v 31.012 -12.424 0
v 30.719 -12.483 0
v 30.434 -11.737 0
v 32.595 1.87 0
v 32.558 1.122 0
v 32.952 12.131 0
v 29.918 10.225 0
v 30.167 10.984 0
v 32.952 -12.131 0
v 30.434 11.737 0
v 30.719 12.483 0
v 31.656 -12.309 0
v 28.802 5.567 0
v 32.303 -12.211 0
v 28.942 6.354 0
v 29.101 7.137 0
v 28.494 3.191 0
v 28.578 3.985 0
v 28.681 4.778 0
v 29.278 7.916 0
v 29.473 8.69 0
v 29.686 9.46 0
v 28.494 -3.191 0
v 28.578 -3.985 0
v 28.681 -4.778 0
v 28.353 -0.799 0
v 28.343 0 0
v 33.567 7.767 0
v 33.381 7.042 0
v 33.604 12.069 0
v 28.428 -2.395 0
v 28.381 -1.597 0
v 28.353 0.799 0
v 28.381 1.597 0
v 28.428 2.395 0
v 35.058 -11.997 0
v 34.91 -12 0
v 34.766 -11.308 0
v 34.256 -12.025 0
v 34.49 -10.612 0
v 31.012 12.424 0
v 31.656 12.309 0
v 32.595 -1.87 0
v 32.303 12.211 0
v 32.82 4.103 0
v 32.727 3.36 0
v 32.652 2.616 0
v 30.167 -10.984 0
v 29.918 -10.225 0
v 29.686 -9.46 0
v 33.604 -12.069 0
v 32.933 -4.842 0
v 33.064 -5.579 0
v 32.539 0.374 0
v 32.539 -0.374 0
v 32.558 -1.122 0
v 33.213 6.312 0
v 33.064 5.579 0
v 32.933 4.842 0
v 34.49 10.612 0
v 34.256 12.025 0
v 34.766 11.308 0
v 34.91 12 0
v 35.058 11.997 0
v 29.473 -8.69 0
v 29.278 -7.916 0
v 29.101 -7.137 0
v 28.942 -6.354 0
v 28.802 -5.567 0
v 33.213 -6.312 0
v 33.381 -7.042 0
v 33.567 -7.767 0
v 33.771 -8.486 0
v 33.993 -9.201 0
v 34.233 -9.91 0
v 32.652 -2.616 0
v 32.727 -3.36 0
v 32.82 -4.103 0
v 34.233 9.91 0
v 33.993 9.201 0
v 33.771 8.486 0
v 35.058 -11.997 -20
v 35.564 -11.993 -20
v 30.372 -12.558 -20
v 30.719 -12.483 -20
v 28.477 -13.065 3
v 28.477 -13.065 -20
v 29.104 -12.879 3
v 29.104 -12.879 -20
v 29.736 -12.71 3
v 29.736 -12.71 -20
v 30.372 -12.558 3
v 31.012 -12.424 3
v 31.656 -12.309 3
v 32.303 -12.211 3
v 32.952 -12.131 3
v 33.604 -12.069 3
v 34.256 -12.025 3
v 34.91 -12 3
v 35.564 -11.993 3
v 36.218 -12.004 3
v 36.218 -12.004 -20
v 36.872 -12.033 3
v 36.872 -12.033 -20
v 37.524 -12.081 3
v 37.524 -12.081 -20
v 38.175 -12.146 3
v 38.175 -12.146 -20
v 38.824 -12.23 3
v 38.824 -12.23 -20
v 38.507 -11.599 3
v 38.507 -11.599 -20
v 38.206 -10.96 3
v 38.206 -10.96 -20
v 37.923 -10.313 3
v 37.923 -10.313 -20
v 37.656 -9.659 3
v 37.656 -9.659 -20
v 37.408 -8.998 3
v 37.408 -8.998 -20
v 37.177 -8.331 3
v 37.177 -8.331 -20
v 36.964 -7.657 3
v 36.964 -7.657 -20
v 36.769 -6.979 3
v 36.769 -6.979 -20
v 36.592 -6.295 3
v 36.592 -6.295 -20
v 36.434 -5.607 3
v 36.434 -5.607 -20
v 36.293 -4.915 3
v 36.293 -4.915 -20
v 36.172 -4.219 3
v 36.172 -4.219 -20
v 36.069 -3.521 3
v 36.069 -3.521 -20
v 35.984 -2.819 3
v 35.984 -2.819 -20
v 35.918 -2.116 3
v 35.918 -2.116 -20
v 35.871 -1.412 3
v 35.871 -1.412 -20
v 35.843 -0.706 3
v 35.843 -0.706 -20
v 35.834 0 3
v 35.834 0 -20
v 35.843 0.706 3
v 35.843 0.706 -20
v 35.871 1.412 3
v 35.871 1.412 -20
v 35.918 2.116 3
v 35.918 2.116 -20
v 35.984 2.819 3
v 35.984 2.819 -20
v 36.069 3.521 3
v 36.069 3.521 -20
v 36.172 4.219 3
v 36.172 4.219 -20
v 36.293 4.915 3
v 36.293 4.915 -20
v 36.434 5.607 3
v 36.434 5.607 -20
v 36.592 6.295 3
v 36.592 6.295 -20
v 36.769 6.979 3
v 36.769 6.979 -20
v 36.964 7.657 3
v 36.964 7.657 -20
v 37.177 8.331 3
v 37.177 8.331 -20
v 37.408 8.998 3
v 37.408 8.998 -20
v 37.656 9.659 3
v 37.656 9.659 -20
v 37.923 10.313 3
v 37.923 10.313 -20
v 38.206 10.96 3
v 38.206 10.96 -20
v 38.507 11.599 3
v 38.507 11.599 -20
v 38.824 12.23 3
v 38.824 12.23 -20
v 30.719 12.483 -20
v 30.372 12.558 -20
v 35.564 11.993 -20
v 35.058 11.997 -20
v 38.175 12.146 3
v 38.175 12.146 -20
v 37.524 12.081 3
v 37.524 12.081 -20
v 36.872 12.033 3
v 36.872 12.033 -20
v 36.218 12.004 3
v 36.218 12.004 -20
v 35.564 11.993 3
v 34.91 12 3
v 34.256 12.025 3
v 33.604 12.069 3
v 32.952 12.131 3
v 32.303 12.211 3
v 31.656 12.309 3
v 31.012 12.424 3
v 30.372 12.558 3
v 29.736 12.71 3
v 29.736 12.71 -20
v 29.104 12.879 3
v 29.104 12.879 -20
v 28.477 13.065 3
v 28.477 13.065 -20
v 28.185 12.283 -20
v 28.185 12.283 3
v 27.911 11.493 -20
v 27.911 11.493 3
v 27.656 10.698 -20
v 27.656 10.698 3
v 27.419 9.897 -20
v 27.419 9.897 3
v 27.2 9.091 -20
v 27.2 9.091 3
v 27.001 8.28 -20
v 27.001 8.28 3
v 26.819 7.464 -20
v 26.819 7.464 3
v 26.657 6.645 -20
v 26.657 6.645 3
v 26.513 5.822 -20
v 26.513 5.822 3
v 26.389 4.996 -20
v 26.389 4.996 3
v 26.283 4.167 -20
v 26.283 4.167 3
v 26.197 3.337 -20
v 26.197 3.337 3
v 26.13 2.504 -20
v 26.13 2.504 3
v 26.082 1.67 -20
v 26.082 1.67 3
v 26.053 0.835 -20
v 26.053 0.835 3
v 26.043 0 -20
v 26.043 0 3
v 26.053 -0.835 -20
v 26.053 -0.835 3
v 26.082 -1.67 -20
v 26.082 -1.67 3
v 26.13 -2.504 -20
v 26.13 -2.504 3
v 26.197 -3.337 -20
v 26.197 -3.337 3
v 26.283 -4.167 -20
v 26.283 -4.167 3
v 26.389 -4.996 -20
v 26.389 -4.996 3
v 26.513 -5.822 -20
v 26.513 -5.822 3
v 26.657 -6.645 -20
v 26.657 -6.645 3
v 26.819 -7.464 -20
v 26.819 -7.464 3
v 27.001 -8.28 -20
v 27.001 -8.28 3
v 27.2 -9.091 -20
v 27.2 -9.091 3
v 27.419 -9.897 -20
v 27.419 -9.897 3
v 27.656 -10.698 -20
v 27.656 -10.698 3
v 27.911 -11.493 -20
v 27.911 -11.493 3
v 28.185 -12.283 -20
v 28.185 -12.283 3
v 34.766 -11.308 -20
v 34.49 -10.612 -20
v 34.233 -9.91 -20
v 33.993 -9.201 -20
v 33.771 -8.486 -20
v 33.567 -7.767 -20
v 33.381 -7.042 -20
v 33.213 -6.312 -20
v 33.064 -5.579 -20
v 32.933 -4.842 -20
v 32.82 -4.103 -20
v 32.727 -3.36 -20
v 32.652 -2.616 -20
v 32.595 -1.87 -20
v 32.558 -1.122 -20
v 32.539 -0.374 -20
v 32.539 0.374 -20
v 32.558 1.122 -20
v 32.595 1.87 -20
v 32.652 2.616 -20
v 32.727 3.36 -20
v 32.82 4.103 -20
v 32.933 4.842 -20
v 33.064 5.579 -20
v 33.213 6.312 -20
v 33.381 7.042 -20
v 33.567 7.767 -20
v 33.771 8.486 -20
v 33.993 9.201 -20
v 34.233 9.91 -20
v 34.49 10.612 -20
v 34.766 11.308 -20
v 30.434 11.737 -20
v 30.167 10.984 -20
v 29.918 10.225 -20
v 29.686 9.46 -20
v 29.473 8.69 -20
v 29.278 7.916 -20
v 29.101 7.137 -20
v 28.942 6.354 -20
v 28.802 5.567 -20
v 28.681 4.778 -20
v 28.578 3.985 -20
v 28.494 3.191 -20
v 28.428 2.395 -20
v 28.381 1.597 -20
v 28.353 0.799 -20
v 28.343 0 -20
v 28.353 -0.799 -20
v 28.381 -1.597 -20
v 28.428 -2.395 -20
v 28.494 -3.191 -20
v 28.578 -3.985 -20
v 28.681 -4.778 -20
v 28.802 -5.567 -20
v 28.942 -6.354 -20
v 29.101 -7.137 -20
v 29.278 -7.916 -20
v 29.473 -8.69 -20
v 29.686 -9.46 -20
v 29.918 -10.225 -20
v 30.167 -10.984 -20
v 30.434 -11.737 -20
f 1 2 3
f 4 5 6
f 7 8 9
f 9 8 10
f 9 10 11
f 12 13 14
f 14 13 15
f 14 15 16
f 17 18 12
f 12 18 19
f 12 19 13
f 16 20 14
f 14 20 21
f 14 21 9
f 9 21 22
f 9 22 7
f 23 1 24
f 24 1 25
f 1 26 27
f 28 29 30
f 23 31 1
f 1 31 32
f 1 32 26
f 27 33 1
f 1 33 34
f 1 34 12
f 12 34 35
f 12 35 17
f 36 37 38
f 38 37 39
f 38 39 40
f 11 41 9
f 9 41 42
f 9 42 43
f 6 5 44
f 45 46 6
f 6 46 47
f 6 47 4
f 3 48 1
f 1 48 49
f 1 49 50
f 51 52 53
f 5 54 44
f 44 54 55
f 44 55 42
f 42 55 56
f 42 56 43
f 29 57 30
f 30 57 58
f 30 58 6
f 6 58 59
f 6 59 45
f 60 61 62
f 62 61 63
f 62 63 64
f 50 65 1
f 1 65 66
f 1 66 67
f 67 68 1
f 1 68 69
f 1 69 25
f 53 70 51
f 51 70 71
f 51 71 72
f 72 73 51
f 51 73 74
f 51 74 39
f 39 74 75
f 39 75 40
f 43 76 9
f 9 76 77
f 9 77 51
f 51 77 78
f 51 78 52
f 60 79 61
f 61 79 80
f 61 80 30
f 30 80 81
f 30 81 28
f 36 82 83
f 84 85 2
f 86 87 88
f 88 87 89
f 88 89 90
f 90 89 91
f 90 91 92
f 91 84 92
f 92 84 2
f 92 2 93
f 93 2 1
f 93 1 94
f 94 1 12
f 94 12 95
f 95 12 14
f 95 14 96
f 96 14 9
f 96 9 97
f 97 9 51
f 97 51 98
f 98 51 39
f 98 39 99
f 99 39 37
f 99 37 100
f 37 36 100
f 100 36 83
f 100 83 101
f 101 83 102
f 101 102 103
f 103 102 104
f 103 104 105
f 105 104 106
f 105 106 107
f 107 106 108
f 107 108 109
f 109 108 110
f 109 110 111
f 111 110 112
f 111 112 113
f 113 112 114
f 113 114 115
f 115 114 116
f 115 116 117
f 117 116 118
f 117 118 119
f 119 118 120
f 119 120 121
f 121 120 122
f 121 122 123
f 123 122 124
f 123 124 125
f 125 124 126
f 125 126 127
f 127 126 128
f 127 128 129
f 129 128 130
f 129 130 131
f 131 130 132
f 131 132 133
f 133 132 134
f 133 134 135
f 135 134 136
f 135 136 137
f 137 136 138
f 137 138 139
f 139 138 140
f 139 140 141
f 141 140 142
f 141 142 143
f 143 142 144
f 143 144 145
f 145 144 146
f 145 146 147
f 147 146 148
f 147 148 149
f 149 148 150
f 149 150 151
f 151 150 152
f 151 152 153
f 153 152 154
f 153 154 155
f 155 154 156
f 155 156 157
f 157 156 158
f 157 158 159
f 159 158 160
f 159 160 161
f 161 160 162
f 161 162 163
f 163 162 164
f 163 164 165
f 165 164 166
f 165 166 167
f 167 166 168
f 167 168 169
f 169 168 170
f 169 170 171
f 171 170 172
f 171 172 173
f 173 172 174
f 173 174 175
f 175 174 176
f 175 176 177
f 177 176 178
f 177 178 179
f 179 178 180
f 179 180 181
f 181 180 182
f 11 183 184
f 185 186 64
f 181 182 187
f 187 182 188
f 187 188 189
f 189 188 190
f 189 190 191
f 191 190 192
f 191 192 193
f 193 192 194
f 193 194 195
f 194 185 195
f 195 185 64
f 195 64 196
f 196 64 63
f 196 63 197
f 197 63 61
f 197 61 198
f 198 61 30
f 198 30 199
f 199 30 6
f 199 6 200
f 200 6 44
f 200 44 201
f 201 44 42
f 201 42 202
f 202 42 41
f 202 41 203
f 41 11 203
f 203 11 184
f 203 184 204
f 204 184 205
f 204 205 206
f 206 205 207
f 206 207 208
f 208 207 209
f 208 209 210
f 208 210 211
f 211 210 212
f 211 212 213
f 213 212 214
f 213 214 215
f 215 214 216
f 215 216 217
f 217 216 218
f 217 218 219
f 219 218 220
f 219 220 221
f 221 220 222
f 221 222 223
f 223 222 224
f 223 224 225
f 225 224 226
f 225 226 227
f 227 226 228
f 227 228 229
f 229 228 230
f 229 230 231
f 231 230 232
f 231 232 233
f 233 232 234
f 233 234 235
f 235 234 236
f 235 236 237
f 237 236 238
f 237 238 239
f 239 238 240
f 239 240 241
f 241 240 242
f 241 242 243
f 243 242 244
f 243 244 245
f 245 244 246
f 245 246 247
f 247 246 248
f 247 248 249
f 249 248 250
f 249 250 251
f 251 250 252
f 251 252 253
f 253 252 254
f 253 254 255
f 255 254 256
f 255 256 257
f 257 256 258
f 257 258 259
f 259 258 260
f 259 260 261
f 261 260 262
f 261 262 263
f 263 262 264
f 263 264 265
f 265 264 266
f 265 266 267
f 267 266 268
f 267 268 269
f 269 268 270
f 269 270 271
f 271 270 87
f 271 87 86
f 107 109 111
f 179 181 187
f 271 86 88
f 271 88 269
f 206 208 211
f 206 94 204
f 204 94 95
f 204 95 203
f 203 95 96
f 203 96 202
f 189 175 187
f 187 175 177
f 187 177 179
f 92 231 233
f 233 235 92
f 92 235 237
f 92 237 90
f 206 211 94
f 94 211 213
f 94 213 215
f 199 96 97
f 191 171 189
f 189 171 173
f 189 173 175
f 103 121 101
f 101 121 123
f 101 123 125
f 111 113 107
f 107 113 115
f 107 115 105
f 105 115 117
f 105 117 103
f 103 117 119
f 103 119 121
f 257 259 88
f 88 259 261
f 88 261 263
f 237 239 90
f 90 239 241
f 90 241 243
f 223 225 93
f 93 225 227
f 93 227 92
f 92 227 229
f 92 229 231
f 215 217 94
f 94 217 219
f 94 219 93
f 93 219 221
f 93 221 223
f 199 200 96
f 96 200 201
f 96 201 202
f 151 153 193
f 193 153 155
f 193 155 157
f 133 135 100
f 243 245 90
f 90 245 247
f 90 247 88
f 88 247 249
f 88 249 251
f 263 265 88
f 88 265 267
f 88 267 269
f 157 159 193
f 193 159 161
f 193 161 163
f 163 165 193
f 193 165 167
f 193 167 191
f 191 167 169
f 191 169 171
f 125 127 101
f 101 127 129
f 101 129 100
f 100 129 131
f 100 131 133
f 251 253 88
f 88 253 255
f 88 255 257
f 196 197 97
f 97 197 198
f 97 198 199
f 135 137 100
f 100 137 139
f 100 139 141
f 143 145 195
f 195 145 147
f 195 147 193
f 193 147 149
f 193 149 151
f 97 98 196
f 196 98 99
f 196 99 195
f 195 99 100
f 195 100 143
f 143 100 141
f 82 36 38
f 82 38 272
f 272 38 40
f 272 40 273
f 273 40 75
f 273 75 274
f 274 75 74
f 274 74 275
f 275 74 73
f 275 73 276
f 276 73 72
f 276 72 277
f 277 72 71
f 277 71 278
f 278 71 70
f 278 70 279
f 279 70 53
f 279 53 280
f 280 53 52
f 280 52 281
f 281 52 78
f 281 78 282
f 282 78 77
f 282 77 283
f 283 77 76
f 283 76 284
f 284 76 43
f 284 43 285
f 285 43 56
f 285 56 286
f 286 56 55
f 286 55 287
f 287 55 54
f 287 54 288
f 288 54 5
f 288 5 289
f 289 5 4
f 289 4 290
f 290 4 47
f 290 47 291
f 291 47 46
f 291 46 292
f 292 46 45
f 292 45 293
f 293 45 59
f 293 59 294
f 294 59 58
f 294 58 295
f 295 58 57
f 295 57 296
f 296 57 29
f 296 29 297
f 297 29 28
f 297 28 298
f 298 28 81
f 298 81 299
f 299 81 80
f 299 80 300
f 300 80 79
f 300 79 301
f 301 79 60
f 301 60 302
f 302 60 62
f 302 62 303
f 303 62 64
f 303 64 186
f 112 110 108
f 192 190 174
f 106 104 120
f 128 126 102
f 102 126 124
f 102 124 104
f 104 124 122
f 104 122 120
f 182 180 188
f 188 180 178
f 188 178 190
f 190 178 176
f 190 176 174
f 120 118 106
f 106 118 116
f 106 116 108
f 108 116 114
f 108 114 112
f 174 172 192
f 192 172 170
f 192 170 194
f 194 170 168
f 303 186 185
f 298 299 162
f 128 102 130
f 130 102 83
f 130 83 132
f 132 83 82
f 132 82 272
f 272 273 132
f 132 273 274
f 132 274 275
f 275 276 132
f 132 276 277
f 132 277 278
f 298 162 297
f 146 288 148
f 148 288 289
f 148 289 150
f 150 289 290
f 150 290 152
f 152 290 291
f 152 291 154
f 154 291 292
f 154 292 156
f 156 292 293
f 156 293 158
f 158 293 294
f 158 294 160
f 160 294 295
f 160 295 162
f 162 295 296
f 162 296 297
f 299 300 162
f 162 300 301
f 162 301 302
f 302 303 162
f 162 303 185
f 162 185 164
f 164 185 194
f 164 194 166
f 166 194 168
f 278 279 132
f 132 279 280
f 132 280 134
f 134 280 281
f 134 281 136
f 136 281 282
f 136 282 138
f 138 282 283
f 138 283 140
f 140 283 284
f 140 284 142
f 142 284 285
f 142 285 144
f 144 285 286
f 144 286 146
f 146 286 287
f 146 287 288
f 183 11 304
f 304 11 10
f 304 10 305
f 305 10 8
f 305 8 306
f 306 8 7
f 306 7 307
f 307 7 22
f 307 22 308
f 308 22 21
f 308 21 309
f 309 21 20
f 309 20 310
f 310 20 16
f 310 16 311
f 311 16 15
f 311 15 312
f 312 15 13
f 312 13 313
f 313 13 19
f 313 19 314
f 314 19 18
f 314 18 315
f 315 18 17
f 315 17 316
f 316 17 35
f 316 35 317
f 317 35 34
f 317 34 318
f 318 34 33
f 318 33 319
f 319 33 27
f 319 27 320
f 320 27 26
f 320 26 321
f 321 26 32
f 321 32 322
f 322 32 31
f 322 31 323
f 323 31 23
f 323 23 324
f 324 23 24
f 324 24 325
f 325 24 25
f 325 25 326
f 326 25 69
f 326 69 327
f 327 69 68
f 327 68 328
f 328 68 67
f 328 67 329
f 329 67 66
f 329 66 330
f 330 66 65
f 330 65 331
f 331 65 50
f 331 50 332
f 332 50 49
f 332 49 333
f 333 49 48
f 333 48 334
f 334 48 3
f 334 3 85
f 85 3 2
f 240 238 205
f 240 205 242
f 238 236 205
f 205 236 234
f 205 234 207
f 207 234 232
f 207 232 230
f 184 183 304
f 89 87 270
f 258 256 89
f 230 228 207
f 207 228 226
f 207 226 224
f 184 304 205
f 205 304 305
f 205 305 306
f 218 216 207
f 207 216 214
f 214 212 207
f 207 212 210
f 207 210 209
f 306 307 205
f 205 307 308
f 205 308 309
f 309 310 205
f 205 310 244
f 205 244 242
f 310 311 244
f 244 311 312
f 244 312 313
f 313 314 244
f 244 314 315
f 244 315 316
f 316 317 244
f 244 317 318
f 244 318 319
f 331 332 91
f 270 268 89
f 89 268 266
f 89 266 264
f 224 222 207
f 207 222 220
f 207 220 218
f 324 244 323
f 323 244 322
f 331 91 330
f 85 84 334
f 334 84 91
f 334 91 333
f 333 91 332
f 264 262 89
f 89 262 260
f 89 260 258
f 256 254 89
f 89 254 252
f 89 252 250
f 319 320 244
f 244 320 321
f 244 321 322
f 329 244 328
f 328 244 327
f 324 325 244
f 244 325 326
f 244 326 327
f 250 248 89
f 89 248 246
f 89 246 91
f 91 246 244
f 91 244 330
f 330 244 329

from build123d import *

# Parameters (mm, degrees)
BOSS_EXTRUDE1_DEPTH = 3
BOSS_EXTRUDE2_DEPTH = 20


with BuildPart() as part:
    # Sketch1 → Boss-Extrude1 (new body)
    with BuildSketch(Plane.XY):
        with BuildLine():
            ThreePointArc((28.476711912, -13.065389126), (26.043422294, 0), (28.476711912, 13.065389126))
            ThreePointArc((28.476711912, 13.065389126), (33.603633576, 12.069057908), (38.823996353, 12.229725621))
            ThreePointArc((38.823996353, 12.229725621), (35.833644105, 0), (38.823996353, -12.229725621))
            ThreePointArc((38.823996353, -12.229725621), (33.603633576, -12.069057908), (28.476711912, -13.065389126))
        make_face()
    extrude(amount=BOSS_EXTRUDE1_DEPTH)

    # Sketch2 → Boss-Extrude2 (add)
    with BuildSketch(Plane(origin=(0, 0, 0), x_dir=(-1, 0, 0), z_dir=(0, 0, -1))):
        with BuildLine():
            ThreePointArc((-30.718530844, -12.483407407), (-28.343422286, 0), (-30.718530844, 12.483407407))
            ThreePointArc((-30.718530844, 12.483407407), (-29.5904471, 12.746762635), (-28.476711912, 13.065389126))
            ThreePointArc((-28.476711912, 13.065389126), (-26.043422294, 0), (-28.476711912, -13.065389126))
            ThreePointArc((-28.476711912, -13.065389126), (-29.5904471, -12.746762635), (-30.718530844, -12.483407407))
        make_face()
        with BuildLine():
            ThreePointArc((-38.823996353, 12.229725621), (-35.833644105, 0), (-38.823996353, -12.229725621))
            ThreePointArc((-38.823996353, -12.229725621), (-36.94579852, -12.037595161), (-35.058238797, -11.996858122))
            ThreePointArc((-35.058238797, -11.996858122), (-32.536736444, 0), (-35.058238797, 11.996858122))
            ThreePointArc((-35.058238797, 11.996858122), (-36.94579852, 12.037595161), (-38.823996353, 12.229725621))
        make_face()
    extrude(amount=BOSS_EXTRUDE2_DEPTH)


solid = part.part
